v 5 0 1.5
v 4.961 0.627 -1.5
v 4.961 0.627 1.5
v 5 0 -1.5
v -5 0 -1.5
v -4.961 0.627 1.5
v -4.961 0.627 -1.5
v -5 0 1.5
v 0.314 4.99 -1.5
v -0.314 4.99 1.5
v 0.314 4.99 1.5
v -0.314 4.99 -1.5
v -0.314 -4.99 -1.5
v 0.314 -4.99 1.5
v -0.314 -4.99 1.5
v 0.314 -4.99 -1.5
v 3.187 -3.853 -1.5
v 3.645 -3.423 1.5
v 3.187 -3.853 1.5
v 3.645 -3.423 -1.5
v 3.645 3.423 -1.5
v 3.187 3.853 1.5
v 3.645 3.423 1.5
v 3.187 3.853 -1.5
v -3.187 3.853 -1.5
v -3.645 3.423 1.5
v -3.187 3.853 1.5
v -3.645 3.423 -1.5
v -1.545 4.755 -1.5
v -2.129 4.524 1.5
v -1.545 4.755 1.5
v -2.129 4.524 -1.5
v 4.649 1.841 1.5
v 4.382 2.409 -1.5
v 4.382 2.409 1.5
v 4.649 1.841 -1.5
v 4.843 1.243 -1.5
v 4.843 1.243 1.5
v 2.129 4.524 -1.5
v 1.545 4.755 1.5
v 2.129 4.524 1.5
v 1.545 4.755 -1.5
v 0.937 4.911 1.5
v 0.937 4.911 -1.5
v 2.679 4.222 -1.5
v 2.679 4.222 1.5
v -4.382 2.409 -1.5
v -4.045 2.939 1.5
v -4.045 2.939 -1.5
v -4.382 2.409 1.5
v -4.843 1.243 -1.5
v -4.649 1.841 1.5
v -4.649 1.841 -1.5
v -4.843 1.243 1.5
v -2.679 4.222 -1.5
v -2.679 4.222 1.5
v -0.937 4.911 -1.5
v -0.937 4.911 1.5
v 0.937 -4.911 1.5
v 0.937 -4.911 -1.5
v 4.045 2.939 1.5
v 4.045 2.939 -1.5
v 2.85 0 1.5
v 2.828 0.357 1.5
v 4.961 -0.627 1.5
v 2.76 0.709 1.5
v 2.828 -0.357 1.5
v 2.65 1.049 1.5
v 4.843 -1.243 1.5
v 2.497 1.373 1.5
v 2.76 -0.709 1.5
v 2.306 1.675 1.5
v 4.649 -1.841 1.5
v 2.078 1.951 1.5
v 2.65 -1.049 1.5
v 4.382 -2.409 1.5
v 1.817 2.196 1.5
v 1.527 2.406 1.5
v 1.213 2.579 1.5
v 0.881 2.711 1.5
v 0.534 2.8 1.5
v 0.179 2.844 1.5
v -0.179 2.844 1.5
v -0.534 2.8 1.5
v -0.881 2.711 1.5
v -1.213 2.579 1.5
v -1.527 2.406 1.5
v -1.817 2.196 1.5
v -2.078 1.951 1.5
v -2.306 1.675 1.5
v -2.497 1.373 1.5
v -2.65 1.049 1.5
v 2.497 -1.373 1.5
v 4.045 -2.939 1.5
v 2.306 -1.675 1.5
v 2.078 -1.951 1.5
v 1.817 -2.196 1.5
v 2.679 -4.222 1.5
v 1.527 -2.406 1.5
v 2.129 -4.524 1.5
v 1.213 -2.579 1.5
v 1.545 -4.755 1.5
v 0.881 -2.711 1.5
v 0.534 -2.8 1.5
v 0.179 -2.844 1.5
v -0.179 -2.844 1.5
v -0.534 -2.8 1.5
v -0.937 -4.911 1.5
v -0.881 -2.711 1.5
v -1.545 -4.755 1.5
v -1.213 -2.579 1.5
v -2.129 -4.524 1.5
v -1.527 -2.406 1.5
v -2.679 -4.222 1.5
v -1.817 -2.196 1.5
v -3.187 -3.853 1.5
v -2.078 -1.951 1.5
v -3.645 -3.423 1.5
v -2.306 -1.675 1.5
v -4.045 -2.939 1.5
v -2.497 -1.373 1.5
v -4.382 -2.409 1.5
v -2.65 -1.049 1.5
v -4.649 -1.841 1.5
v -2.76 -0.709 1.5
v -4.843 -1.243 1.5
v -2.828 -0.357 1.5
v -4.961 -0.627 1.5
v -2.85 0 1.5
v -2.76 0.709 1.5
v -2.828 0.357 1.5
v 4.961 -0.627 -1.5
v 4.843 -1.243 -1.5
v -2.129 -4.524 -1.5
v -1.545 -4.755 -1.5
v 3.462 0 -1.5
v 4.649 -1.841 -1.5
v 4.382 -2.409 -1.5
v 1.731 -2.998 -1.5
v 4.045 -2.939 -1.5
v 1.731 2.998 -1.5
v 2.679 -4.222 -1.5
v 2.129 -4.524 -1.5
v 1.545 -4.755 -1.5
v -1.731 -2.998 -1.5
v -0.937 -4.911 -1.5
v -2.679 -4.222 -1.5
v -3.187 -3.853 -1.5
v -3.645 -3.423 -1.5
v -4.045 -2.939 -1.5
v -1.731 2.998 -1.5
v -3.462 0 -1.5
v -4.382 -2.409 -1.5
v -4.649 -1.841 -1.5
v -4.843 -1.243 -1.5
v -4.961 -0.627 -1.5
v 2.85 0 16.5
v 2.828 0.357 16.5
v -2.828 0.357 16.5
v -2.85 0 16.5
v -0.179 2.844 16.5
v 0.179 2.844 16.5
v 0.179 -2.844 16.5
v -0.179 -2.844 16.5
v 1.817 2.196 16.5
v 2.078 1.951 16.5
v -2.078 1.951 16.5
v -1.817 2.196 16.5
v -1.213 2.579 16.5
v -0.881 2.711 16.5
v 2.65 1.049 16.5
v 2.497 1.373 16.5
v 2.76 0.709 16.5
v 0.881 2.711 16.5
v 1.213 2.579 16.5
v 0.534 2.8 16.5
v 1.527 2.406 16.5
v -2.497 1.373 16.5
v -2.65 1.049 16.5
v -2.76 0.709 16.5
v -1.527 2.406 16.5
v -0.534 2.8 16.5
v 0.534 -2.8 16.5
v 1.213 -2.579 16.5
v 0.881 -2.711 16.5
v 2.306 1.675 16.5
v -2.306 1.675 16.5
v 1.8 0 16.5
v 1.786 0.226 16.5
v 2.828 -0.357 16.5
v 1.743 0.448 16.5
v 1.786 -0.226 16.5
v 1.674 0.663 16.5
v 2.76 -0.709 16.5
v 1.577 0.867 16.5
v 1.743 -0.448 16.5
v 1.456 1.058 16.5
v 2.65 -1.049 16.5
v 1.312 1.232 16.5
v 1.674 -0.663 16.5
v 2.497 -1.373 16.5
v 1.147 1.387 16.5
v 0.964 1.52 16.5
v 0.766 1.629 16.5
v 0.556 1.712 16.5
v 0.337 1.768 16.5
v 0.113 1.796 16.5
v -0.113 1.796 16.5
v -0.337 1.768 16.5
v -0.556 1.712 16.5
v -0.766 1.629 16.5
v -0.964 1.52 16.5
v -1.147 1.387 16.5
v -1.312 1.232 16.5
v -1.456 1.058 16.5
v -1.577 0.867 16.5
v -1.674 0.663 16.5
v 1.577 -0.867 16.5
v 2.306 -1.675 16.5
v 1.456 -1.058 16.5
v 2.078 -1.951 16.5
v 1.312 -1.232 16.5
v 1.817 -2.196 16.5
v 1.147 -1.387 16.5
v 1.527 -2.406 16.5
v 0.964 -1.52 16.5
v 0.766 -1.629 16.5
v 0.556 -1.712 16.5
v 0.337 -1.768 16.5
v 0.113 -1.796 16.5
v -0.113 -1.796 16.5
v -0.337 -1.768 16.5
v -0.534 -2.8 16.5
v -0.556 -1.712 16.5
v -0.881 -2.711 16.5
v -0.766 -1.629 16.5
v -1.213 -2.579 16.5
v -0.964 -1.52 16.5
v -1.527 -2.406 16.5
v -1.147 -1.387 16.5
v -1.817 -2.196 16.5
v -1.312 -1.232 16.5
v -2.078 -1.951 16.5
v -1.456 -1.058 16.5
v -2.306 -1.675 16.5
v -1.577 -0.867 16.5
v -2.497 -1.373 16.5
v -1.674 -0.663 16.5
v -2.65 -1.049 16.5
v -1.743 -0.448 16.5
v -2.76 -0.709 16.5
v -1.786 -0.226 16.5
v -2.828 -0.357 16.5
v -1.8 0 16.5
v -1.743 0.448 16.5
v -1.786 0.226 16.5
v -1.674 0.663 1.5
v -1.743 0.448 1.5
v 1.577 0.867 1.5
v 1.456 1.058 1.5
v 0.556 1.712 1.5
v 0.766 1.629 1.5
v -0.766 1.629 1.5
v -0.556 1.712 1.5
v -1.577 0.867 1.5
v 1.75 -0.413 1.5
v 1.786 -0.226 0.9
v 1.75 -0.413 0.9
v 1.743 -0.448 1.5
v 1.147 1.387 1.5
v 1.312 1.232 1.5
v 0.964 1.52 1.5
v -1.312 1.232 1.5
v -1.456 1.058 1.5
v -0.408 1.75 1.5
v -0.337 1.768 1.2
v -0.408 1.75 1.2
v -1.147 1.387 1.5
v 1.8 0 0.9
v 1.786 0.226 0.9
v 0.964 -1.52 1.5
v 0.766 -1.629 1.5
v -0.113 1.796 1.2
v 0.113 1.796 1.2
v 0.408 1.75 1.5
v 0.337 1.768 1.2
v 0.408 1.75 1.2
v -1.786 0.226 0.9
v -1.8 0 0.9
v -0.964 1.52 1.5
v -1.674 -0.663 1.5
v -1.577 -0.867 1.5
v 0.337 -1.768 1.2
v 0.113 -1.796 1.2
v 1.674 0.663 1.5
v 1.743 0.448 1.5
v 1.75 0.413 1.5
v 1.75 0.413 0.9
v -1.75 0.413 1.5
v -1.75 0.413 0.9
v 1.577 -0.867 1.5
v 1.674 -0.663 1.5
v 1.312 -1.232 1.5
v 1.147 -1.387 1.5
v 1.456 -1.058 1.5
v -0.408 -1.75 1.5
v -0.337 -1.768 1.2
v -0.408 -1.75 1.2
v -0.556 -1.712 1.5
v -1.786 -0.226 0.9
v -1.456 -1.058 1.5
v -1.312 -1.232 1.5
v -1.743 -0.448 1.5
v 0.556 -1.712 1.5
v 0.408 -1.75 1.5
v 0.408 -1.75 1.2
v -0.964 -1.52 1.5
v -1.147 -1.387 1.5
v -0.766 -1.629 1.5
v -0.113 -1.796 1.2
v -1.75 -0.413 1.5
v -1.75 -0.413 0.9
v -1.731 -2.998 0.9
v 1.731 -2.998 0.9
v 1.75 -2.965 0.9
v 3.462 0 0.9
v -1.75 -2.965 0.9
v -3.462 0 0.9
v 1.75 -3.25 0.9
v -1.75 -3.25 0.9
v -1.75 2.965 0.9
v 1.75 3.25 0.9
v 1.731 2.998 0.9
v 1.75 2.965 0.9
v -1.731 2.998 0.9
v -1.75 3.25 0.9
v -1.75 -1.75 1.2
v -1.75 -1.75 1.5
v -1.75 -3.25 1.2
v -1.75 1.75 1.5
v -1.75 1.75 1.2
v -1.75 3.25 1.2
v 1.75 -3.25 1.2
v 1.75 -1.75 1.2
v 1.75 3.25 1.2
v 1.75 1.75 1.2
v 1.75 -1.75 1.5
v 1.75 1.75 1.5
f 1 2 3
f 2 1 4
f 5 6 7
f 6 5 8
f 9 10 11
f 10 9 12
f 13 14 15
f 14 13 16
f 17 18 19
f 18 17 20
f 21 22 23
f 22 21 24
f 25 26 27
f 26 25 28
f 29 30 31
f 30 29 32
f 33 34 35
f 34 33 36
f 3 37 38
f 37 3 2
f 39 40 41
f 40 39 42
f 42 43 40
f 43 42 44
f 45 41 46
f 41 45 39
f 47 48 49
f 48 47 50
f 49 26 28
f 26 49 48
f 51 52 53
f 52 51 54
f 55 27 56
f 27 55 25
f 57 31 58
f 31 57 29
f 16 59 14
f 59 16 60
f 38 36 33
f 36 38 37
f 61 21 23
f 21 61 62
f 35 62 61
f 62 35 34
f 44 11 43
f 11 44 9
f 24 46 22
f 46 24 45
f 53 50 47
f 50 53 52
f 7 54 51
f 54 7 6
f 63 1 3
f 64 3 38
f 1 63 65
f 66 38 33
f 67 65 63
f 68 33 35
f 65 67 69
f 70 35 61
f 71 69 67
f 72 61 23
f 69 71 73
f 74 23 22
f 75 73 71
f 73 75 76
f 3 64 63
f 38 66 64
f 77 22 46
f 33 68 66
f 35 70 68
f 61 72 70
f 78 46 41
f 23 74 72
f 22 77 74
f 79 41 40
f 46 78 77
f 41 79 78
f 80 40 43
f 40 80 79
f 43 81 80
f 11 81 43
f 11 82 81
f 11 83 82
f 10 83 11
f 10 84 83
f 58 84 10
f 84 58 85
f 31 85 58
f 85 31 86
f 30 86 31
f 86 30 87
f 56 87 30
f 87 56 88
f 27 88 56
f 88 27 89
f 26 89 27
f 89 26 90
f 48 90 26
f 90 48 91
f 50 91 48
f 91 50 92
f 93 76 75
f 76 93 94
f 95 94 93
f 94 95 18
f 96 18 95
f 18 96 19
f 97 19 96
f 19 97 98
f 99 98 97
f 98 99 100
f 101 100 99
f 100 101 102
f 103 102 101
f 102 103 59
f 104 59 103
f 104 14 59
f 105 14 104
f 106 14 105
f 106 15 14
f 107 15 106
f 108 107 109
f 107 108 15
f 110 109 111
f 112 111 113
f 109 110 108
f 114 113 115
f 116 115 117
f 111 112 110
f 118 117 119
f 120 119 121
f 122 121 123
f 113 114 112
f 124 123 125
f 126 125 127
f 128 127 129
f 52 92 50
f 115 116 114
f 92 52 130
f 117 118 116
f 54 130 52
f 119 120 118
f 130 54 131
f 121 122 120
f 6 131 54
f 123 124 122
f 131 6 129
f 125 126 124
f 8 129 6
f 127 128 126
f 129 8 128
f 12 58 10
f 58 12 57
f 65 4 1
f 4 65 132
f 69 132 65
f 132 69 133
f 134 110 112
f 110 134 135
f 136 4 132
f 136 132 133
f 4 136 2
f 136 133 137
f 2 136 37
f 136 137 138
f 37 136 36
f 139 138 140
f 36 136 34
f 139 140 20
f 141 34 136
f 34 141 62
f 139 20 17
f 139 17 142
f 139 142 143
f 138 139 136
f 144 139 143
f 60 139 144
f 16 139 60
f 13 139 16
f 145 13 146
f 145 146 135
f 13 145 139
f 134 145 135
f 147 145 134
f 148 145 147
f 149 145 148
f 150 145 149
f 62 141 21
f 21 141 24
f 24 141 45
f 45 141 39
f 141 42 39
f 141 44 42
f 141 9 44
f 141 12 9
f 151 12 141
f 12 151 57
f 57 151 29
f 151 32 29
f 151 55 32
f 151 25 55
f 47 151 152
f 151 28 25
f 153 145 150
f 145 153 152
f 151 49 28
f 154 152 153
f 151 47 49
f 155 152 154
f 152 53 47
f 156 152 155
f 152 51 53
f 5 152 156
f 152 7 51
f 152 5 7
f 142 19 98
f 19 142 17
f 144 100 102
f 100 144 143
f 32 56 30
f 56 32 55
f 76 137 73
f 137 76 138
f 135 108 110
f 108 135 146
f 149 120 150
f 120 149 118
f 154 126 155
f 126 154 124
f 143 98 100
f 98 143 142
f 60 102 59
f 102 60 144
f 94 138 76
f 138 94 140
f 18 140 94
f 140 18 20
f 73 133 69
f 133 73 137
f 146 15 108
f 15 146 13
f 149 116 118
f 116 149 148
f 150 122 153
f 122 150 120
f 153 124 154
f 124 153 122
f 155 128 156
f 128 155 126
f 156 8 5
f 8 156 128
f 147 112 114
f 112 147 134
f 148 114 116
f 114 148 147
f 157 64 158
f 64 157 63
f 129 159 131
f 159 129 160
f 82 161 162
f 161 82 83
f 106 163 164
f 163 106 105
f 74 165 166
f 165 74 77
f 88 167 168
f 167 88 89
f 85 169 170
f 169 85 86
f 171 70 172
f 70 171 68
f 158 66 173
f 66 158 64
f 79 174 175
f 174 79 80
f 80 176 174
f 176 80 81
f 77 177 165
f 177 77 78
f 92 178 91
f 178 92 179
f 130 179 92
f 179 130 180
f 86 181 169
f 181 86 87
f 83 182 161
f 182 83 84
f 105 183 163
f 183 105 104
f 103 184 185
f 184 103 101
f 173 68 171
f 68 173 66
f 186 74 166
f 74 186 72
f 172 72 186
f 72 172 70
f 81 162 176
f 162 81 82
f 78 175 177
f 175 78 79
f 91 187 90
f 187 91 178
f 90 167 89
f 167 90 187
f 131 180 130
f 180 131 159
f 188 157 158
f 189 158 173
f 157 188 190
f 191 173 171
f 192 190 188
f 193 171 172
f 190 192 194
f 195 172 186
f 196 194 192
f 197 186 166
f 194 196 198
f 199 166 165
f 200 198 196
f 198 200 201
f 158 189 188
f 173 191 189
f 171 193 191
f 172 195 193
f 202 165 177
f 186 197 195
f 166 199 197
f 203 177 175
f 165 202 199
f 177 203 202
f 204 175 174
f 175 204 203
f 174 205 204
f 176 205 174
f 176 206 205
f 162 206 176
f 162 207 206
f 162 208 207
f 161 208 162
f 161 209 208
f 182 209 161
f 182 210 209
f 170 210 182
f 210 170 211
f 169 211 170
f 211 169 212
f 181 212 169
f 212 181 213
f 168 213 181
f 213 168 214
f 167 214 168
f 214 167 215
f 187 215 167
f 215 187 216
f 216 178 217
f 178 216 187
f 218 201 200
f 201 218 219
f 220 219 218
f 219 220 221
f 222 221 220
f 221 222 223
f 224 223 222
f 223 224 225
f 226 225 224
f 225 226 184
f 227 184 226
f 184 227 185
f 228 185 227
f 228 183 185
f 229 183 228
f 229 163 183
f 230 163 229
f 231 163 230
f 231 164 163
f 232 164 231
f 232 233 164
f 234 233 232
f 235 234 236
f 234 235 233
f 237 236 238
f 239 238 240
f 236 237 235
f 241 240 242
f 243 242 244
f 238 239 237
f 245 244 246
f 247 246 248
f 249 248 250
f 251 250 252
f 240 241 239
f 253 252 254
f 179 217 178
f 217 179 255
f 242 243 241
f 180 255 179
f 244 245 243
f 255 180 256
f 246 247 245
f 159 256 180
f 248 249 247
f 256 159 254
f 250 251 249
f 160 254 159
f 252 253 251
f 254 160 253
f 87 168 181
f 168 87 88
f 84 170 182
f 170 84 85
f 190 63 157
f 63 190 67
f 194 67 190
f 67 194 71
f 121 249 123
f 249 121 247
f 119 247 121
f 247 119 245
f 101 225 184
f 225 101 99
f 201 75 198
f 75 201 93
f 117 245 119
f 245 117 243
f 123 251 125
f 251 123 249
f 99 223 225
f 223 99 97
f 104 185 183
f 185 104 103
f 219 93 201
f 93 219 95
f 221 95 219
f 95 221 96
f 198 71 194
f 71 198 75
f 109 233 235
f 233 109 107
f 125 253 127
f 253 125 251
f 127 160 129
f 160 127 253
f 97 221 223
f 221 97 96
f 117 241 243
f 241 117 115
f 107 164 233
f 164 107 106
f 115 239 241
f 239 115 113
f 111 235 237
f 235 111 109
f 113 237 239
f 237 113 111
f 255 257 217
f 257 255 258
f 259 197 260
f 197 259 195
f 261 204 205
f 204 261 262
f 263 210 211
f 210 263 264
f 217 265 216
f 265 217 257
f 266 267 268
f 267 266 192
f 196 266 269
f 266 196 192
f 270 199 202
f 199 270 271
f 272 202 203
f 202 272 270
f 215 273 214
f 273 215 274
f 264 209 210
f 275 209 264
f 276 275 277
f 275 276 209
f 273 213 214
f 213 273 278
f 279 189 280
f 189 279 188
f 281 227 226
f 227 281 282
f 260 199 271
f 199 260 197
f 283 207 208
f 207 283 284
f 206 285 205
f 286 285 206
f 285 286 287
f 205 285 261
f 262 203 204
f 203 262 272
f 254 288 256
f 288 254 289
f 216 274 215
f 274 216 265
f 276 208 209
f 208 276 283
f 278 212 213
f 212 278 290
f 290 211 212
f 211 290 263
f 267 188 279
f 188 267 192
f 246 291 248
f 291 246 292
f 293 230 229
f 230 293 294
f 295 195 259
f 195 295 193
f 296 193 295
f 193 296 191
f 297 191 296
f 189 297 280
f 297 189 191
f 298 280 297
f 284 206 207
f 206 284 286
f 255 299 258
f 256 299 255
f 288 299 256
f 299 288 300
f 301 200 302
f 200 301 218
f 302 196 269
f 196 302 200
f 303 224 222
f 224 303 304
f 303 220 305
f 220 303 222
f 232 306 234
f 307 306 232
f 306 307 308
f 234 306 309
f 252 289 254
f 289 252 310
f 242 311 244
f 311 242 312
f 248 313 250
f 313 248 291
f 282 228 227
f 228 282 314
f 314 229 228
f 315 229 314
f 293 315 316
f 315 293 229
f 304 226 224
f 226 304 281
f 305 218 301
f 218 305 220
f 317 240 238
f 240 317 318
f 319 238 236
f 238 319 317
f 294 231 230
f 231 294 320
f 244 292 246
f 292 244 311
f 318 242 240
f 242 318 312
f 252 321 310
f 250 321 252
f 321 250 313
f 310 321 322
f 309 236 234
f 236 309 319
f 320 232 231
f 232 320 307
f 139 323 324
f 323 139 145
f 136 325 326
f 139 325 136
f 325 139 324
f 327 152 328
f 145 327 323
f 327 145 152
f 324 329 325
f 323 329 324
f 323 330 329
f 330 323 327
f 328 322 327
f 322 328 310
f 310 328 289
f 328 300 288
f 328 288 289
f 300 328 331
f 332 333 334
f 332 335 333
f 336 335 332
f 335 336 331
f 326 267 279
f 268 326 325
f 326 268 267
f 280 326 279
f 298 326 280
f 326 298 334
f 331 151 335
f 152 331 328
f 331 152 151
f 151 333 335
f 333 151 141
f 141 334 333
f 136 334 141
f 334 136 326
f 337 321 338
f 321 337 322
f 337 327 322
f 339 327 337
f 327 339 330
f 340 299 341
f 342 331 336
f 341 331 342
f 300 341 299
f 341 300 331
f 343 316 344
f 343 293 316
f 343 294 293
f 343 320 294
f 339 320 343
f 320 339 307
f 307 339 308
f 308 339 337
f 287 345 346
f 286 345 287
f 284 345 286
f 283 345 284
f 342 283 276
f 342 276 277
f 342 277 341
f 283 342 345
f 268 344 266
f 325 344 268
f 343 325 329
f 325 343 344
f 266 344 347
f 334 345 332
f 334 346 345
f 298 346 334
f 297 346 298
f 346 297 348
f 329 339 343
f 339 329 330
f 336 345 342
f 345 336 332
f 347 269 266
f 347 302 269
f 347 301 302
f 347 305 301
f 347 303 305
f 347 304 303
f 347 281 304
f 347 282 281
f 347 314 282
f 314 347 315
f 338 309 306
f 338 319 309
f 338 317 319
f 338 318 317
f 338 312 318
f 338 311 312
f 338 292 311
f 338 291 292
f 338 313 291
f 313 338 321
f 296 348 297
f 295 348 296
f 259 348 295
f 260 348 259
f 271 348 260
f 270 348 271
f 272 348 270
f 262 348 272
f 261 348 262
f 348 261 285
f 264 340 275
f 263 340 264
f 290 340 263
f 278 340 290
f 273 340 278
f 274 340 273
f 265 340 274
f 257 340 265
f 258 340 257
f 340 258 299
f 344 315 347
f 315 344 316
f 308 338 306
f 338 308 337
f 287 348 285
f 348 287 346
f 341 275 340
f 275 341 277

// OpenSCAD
$fn = 50;


difference() {
	union() {
		translate(v = [0, 0, -1.5000000000]) {
			rotate(a = [0, 0, 0]) {
				cylinder(h = 3, r = 5.0000000000);
			}
		}
		translate(v = [0, 0, -1.5000000000]) {
			rotate(a = [0, 0, 0]) {
				cylinder(h = 18, r = 2.8500000000);
			}
		}
	}
	union() {
		translate(v = [0, 0, -125.0000000000]) {
			rotate(a = [0, 0, 0]) {
				cylinder(h = 250, r = 1.8000000000);
			}
		}
		translate(v = [0, 0, -2.1000000000]) {
			rotate(a = [0, 0, 0]) {
				#translate(v = [0, 0, 0]) {
					rotate(a = [0, 0, 0]) {
						linear_extrude(height = 3) {
							polygon(points = [[3.4620000000, 0.0000000000], [1.7310000000, 2.9981799479], [-1.7310000000, 2.9981799479], [-3.4620000000, 0.0000000000], [-1.7310000000, -2.9981799479], [1.7310000000, -2.9981799479]]);
						}
					}
				}
			}
		}
		#translate(v = [-1.7500000000, -3.2500000000, 0.9000000000]) {
			rotate(a = [0, 0, 0]) {
				cube(size = [3.5000000000, 6.5000000000, 0.3000000000]);
			}
		}
		#translate(v = [-1.7500000000, -1.7500000000, 1.2000000000]) {
			rotate(a = [0, 0, 0]) {
				cube(size = [3.5000000000, 3.5000000000, 0.3000000000]);
			}
		}
		#translate(v = [-1.7500000000, -3.2500000000, -2.4000000000]) {
			rotate(a = [0, 0, 0]) {
				cube(size = [3.5000000000, 6.5000000000, 0.3000000000]);
			}
		}
		#translate(v = [-1.7500000000, -1.7500000000, -2.7000000000]) {
			rotate(a = [0, 0, 0]) {
				cube(size = [3.5000000000, 3.5000000000, 0.3000000000]);
			}
		}
	}
}
